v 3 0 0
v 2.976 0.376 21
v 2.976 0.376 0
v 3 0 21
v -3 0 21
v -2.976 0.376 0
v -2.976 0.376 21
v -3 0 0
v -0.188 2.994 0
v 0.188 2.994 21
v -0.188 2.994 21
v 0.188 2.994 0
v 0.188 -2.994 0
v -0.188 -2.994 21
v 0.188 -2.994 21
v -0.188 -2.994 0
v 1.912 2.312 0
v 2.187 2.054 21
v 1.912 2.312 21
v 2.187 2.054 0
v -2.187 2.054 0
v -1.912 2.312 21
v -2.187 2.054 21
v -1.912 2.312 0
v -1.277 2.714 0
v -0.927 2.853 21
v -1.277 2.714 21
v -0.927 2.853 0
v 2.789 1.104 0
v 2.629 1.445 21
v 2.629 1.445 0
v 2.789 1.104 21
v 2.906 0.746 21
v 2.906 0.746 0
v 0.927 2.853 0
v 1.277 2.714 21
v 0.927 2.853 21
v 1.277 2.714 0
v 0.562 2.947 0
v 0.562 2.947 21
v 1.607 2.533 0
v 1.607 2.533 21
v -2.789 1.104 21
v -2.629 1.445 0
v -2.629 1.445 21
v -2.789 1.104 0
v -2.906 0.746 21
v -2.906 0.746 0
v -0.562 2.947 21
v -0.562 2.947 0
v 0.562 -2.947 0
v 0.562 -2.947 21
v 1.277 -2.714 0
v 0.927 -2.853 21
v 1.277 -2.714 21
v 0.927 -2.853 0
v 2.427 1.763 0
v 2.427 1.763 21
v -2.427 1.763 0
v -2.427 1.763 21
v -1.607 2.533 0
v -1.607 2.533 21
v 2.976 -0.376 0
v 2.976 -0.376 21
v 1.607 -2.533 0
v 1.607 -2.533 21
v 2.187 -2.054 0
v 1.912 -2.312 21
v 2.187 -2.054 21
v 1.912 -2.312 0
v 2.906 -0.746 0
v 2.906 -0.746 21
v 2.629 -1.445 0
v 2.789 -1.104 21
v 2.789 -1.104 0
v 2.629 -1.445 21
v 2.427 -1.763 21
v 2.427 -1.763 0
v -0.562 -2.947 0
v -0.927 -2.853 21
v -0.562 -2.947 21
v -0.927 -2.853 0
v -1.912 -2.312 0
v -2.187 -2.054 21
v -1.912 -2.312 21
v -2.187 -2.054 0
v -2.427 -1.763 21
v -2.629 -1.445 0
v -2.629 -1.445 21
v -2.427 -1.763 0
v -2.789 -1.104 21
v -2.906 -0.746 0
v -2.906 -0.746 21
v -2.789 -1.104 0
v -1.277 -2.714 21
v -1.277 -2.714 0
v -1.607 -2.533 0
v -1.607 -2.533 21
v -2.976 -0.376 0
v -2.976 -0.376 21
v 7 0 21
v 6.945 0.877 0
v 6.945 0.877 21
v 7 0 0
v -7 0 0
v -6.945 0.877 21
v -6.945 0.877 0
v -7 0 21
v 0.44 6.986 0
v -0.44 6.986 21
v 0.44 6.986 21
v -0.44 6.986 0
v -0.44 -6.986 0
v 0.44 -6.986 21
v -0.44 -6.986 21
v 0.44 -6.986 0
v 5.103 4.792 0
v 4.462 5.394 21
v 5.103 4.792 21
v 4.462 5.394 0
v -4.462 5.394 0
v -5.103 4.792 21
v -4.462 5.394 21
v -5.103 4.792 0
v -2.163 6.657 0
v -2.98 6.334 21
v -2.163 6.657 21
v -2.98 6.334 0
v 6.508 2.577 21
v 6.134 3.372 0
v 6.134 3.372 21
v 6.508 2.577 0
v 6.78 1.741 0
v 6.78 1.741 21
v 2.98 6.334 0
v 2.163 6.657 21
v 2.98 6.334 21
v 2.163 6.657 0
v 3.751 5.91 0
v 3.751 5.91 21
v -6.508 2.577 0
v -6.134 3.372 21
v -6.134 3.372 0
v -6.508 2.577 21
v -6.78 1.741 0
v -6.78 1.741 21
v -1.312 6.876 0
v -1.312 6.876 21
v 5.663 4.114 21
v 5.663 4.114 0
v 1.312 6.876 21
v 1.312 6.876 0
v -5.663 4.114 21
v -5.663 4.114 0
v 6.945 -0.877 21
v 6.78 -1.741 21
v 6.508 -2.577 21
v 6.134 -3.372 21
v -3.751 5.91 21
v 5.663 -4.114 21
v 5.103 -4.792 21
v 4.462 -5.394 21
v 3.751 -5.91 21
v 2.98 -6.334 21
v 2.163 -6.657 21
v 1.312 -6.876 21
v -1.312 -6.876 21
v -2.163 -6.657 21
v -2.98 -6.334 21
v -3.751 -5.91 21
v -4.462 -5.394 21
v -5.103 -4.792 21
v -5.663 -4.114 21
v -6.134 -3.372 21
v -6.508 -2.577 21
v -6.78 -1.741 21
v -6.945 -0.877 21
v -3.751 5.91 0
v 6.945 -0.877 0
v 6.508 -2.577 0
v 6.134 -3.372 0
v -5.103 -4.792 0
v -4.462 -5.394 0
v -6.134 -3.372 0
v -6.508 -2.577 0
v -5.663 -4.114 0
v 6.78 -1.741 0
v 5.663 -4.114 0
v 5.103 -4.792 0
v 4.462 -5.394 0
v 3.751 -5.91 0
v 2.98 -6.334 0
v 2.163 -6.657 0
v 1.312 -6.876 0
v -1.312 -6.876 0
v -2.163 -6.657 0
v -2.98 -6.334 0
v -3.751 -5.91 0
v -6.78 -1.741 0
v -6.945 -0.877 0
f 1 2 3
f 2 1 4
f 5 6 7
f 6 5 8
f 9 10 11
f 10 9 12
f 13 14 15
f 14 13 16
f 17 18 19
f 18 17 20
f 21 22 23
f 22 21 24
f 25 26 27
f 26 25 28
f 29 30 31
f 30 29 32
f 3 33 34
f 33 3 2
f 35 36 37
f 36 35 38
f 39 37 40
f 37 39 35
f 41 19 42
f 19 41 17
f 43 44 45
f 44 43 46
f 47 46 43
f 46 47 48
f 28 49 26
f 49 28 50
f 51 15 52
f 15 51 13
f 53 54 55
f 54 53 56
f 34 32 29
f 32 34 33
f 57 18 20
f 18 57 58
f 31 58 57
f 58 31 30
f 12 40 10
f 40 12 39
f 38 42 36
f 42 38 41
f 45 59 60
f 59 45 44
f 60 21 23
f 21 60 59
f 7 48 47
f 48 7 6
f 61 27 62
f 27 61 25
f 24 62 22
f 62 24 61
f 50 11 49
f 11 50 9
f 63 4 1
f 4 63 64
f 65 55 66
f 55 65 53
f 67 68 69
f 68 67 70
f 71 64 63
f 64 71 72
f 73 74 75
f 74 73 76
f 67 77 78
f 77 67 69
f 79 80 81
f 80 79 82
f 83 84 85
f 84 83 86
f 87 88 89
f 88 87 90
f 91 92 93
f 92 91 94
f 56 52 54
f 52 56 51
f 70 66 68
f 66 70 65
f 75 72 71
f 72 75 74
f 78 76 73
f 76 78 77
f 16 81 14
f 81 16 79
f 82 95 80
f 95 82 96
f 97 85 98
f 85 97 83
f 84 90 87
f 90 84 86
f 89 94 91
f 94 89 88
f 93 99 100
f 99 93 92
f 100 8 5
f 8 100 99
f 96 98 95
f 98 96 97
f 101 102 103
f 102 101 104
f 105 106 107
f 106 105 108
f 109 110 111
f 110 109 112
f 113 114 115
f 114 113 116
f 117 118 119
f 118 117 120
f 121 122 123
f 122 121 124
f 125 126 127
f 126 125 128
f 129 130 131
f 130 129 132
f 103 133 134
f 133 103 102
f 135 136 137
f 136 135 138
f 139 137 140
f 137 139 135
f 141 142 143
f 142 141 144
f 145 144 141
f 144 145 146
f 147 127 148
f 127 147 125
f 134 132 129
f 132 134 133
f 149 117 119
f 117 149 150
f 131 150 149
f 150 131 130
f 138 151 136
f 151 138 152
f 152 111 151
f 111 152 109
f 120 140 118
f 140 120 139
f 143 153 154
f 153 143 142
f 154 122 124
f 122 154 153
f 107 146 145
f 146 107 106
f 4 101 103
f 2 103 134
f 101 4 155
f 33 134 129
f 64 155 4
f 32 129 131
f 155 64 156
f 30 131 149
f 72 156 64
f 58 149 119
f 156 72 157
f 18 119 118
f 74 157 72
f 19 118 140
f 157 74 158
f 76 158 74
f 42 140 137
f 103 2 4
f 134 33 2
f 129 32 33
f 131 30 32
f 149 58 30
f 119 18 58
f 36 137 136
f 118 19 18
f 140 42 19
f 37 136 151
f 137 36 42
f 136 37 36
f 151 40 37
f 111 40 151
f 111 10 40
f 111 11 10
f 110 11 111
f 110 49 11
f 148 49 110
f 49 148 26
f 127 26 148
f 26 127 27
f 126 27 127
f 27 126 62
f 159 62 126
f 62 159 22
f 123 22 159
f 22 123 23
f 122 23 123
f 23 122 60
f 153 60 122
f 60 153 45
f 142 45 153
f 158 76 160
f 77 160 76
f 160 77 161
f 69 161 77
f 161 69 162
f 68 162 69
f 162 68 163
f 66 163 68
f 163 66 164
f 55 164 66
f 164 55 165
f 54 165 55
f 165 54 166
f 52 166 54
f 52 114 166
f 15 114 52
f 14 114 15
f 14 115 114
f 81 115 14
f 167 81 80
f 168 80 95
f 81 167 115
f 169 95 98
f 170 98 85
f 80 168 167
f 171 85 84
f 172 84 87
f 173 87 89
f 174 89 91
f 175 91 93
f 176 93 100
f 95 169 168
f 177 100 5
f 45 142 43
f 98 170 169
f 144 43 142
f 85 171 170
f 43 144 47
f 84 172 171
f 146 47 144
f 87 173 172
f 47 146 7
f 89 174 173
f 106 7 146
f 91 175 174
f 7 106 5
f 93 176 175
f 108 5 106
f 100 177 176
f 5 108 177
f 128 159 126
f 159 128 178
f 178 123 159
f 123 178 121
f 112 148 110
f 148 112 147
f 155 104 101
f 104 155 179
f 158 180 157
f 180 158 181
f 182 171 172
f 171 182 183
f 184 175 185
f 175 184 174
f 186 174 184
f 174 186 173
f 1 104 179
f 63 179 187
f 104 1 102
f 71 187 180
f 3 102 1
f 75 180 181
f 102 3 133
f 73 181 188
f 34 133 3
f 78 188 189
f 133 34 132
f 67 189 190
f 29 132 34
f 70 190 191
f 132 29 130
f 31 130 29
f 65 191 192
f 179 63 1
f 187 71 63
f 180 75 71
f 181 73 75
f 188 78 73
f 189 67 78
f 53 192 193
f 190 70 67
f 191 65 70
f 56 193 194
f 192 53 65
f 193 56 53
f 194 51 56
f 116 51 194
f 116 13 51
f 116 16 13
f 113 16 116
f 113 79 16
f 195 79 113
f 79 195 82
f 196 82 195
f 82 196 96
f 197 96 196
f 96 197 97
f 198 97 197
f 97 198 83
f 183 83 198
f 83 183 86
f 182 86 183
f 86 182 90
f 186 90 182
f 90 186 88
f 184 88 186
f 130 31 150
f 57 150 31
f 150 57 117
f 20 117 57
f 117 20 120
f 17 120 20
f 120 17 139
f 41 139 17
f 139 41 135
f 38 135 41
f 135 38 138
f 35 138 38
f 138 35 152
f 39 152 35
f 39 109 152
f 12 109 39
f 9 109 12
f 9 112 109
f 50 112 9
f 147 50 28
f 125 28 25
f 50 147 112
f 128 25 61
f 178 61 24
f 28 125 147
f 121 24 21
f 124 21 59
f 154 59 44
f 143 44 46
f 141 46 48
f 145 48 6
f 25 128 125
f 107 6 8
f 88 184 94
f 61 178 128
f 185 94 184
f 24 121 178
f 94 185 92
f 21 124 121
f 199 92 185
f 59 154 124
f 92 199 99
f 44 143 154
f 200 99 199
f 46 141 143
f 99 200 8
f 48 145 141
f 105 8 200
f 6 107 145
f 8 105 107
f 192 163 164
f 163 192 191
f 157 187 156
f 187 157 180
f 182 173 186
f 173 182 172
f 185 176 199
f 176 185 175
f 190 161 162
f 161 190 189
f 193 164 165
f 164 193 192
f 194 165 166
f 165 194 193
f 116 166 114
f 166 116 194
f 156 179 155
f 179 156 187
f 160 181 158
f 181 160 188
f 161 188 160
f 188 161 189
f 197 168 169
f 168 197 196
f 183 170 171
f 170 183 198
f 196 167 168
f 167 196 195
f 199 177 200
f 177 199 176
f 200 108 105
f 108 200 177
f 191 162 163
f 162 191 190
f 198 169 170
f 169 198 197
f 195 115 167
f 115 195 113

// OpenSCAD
$fn = 50;


difference() {
	union() {
		cylinder(h = 21, r = 7.0000000000);
	}
	union() {
		translate(v = [0, 0, -100]) {
			cylinder(h = 200, r = 3.0000000000);
		}
		translate(v = [0, 0, -100]) {
			cylinder(h = 200, r = 1.5000000000);
		}
	}
}
